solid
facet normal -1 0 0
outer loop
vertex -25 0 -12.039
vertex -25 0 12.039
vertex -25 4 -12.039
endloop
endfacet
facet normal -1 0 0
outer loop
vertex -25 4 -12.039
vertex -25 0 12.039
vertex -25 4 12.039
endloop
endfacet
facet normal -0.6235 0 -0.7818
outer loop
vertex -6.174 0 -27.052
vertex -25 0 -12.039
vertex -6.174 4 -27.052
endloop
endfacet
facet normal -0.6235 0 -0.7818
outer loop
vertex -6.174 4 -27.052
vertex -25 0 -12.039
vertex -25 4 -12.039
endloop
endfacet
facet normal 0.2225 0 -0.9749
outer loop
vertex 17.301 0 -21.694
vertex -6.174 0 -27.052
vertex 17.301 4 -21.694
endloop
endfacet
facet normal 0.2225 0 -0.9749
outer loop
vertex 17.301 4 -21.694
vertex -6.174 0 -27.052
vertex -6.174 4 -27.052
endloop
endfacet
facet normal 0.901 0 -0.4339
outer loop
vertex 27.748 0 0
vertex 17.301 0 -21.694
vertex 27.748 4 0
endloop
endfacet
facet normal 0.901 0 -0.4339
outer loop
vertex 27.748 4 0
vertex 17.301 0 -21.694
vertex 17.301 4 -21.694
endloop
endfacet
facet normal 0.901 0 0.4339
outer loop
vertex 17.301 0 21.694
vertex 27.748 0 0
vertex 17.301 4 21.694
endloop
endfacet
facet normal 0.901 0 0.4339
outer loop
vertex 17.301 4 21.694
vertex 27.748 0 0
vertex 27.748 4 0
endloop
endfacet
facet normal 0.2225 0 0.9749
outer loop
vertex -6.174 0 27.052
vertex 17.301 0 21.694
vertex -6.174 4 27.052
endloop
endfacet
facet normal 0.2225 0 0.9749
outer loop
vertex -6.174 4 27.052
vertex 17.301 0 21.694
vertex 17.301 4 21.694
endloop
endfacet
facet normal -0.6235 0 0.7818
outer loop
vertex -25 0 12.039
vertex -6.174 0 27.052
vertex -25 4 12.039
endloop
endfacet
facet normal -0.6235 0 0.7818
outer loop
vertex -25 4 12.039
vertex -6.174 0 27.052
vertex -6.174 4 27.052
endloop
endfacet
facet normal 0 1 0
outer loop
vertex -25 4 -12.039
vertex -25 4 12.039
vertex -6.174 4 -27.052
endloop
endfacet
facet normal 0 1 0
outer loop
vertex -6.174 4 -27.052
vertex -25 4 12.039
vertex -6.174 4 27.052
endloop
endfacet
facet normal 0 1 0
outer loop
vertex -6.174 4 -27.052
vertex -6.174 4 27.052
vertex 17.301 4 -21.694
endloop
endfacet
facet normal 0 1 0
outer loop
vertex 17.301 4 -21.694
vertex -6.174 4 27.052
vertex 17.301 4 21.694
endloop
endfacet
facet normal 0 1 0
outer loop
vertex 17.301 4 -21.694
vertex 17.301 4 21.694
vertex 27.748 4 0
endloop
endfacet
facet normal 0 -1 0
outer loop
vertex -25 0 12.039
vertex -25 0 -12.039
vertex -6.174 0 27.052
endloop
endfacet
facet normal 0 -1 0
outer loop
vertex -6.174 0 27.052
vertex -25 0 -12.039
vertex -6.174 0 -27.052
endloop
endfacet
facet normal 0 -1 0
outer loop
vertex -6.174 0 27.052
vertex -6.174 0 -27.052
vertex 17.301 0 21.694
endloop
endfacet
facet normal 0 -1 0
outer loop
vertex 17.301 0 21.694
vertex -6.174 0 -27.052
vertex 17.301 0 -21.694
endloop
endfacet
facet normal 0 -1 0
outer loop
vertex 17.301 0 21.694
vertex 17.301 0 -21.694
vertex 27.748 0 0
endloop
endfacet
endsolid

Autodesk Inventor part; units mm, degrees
ref_plane "YZ Plane" through (0, 0, 0) normal (1, 0, 0) x (0, 1, 0)
ref_plane "XZ Plane" through (0, 0, 0) normal (0, 1, 0) x (-1, 0, 0)
ref_plane "XY Plane" through (0, 0, 0) normal (0, 0, 1) x (1, 0, 0)
sketch "Sketch1" plane through (0, 0, 0) normal (0, 1, 0) x (-1, 0, 0)
  circle A0 centre (0, 0) radius 25 construction
  line L0 (25, -12.0394) -> (6.1745, -27.0522)
  line L1 (6.1745, -27.0522) -> (-17.3005, -21.6942)
  line L2 (-17.3005, -21.6942) -> (-27.7479, 0)
  line L3 (-27.7479, 0) -> (-17.3005, 21.6942)
  line L4 (-17.3005, 21.6942) -> (6.1745, 27.0522)
  line L5 (6.1745, 27.0522) -> (25, 12.0394)
  line L6 (25, 12.0394) -> (25, -12.0394)
  point P0 (25, 0)
  dimension "d0" = 50
extrude "Extrusion1" add sketch "Sketch1" along normal blind 4
properties part number "objeto6"
